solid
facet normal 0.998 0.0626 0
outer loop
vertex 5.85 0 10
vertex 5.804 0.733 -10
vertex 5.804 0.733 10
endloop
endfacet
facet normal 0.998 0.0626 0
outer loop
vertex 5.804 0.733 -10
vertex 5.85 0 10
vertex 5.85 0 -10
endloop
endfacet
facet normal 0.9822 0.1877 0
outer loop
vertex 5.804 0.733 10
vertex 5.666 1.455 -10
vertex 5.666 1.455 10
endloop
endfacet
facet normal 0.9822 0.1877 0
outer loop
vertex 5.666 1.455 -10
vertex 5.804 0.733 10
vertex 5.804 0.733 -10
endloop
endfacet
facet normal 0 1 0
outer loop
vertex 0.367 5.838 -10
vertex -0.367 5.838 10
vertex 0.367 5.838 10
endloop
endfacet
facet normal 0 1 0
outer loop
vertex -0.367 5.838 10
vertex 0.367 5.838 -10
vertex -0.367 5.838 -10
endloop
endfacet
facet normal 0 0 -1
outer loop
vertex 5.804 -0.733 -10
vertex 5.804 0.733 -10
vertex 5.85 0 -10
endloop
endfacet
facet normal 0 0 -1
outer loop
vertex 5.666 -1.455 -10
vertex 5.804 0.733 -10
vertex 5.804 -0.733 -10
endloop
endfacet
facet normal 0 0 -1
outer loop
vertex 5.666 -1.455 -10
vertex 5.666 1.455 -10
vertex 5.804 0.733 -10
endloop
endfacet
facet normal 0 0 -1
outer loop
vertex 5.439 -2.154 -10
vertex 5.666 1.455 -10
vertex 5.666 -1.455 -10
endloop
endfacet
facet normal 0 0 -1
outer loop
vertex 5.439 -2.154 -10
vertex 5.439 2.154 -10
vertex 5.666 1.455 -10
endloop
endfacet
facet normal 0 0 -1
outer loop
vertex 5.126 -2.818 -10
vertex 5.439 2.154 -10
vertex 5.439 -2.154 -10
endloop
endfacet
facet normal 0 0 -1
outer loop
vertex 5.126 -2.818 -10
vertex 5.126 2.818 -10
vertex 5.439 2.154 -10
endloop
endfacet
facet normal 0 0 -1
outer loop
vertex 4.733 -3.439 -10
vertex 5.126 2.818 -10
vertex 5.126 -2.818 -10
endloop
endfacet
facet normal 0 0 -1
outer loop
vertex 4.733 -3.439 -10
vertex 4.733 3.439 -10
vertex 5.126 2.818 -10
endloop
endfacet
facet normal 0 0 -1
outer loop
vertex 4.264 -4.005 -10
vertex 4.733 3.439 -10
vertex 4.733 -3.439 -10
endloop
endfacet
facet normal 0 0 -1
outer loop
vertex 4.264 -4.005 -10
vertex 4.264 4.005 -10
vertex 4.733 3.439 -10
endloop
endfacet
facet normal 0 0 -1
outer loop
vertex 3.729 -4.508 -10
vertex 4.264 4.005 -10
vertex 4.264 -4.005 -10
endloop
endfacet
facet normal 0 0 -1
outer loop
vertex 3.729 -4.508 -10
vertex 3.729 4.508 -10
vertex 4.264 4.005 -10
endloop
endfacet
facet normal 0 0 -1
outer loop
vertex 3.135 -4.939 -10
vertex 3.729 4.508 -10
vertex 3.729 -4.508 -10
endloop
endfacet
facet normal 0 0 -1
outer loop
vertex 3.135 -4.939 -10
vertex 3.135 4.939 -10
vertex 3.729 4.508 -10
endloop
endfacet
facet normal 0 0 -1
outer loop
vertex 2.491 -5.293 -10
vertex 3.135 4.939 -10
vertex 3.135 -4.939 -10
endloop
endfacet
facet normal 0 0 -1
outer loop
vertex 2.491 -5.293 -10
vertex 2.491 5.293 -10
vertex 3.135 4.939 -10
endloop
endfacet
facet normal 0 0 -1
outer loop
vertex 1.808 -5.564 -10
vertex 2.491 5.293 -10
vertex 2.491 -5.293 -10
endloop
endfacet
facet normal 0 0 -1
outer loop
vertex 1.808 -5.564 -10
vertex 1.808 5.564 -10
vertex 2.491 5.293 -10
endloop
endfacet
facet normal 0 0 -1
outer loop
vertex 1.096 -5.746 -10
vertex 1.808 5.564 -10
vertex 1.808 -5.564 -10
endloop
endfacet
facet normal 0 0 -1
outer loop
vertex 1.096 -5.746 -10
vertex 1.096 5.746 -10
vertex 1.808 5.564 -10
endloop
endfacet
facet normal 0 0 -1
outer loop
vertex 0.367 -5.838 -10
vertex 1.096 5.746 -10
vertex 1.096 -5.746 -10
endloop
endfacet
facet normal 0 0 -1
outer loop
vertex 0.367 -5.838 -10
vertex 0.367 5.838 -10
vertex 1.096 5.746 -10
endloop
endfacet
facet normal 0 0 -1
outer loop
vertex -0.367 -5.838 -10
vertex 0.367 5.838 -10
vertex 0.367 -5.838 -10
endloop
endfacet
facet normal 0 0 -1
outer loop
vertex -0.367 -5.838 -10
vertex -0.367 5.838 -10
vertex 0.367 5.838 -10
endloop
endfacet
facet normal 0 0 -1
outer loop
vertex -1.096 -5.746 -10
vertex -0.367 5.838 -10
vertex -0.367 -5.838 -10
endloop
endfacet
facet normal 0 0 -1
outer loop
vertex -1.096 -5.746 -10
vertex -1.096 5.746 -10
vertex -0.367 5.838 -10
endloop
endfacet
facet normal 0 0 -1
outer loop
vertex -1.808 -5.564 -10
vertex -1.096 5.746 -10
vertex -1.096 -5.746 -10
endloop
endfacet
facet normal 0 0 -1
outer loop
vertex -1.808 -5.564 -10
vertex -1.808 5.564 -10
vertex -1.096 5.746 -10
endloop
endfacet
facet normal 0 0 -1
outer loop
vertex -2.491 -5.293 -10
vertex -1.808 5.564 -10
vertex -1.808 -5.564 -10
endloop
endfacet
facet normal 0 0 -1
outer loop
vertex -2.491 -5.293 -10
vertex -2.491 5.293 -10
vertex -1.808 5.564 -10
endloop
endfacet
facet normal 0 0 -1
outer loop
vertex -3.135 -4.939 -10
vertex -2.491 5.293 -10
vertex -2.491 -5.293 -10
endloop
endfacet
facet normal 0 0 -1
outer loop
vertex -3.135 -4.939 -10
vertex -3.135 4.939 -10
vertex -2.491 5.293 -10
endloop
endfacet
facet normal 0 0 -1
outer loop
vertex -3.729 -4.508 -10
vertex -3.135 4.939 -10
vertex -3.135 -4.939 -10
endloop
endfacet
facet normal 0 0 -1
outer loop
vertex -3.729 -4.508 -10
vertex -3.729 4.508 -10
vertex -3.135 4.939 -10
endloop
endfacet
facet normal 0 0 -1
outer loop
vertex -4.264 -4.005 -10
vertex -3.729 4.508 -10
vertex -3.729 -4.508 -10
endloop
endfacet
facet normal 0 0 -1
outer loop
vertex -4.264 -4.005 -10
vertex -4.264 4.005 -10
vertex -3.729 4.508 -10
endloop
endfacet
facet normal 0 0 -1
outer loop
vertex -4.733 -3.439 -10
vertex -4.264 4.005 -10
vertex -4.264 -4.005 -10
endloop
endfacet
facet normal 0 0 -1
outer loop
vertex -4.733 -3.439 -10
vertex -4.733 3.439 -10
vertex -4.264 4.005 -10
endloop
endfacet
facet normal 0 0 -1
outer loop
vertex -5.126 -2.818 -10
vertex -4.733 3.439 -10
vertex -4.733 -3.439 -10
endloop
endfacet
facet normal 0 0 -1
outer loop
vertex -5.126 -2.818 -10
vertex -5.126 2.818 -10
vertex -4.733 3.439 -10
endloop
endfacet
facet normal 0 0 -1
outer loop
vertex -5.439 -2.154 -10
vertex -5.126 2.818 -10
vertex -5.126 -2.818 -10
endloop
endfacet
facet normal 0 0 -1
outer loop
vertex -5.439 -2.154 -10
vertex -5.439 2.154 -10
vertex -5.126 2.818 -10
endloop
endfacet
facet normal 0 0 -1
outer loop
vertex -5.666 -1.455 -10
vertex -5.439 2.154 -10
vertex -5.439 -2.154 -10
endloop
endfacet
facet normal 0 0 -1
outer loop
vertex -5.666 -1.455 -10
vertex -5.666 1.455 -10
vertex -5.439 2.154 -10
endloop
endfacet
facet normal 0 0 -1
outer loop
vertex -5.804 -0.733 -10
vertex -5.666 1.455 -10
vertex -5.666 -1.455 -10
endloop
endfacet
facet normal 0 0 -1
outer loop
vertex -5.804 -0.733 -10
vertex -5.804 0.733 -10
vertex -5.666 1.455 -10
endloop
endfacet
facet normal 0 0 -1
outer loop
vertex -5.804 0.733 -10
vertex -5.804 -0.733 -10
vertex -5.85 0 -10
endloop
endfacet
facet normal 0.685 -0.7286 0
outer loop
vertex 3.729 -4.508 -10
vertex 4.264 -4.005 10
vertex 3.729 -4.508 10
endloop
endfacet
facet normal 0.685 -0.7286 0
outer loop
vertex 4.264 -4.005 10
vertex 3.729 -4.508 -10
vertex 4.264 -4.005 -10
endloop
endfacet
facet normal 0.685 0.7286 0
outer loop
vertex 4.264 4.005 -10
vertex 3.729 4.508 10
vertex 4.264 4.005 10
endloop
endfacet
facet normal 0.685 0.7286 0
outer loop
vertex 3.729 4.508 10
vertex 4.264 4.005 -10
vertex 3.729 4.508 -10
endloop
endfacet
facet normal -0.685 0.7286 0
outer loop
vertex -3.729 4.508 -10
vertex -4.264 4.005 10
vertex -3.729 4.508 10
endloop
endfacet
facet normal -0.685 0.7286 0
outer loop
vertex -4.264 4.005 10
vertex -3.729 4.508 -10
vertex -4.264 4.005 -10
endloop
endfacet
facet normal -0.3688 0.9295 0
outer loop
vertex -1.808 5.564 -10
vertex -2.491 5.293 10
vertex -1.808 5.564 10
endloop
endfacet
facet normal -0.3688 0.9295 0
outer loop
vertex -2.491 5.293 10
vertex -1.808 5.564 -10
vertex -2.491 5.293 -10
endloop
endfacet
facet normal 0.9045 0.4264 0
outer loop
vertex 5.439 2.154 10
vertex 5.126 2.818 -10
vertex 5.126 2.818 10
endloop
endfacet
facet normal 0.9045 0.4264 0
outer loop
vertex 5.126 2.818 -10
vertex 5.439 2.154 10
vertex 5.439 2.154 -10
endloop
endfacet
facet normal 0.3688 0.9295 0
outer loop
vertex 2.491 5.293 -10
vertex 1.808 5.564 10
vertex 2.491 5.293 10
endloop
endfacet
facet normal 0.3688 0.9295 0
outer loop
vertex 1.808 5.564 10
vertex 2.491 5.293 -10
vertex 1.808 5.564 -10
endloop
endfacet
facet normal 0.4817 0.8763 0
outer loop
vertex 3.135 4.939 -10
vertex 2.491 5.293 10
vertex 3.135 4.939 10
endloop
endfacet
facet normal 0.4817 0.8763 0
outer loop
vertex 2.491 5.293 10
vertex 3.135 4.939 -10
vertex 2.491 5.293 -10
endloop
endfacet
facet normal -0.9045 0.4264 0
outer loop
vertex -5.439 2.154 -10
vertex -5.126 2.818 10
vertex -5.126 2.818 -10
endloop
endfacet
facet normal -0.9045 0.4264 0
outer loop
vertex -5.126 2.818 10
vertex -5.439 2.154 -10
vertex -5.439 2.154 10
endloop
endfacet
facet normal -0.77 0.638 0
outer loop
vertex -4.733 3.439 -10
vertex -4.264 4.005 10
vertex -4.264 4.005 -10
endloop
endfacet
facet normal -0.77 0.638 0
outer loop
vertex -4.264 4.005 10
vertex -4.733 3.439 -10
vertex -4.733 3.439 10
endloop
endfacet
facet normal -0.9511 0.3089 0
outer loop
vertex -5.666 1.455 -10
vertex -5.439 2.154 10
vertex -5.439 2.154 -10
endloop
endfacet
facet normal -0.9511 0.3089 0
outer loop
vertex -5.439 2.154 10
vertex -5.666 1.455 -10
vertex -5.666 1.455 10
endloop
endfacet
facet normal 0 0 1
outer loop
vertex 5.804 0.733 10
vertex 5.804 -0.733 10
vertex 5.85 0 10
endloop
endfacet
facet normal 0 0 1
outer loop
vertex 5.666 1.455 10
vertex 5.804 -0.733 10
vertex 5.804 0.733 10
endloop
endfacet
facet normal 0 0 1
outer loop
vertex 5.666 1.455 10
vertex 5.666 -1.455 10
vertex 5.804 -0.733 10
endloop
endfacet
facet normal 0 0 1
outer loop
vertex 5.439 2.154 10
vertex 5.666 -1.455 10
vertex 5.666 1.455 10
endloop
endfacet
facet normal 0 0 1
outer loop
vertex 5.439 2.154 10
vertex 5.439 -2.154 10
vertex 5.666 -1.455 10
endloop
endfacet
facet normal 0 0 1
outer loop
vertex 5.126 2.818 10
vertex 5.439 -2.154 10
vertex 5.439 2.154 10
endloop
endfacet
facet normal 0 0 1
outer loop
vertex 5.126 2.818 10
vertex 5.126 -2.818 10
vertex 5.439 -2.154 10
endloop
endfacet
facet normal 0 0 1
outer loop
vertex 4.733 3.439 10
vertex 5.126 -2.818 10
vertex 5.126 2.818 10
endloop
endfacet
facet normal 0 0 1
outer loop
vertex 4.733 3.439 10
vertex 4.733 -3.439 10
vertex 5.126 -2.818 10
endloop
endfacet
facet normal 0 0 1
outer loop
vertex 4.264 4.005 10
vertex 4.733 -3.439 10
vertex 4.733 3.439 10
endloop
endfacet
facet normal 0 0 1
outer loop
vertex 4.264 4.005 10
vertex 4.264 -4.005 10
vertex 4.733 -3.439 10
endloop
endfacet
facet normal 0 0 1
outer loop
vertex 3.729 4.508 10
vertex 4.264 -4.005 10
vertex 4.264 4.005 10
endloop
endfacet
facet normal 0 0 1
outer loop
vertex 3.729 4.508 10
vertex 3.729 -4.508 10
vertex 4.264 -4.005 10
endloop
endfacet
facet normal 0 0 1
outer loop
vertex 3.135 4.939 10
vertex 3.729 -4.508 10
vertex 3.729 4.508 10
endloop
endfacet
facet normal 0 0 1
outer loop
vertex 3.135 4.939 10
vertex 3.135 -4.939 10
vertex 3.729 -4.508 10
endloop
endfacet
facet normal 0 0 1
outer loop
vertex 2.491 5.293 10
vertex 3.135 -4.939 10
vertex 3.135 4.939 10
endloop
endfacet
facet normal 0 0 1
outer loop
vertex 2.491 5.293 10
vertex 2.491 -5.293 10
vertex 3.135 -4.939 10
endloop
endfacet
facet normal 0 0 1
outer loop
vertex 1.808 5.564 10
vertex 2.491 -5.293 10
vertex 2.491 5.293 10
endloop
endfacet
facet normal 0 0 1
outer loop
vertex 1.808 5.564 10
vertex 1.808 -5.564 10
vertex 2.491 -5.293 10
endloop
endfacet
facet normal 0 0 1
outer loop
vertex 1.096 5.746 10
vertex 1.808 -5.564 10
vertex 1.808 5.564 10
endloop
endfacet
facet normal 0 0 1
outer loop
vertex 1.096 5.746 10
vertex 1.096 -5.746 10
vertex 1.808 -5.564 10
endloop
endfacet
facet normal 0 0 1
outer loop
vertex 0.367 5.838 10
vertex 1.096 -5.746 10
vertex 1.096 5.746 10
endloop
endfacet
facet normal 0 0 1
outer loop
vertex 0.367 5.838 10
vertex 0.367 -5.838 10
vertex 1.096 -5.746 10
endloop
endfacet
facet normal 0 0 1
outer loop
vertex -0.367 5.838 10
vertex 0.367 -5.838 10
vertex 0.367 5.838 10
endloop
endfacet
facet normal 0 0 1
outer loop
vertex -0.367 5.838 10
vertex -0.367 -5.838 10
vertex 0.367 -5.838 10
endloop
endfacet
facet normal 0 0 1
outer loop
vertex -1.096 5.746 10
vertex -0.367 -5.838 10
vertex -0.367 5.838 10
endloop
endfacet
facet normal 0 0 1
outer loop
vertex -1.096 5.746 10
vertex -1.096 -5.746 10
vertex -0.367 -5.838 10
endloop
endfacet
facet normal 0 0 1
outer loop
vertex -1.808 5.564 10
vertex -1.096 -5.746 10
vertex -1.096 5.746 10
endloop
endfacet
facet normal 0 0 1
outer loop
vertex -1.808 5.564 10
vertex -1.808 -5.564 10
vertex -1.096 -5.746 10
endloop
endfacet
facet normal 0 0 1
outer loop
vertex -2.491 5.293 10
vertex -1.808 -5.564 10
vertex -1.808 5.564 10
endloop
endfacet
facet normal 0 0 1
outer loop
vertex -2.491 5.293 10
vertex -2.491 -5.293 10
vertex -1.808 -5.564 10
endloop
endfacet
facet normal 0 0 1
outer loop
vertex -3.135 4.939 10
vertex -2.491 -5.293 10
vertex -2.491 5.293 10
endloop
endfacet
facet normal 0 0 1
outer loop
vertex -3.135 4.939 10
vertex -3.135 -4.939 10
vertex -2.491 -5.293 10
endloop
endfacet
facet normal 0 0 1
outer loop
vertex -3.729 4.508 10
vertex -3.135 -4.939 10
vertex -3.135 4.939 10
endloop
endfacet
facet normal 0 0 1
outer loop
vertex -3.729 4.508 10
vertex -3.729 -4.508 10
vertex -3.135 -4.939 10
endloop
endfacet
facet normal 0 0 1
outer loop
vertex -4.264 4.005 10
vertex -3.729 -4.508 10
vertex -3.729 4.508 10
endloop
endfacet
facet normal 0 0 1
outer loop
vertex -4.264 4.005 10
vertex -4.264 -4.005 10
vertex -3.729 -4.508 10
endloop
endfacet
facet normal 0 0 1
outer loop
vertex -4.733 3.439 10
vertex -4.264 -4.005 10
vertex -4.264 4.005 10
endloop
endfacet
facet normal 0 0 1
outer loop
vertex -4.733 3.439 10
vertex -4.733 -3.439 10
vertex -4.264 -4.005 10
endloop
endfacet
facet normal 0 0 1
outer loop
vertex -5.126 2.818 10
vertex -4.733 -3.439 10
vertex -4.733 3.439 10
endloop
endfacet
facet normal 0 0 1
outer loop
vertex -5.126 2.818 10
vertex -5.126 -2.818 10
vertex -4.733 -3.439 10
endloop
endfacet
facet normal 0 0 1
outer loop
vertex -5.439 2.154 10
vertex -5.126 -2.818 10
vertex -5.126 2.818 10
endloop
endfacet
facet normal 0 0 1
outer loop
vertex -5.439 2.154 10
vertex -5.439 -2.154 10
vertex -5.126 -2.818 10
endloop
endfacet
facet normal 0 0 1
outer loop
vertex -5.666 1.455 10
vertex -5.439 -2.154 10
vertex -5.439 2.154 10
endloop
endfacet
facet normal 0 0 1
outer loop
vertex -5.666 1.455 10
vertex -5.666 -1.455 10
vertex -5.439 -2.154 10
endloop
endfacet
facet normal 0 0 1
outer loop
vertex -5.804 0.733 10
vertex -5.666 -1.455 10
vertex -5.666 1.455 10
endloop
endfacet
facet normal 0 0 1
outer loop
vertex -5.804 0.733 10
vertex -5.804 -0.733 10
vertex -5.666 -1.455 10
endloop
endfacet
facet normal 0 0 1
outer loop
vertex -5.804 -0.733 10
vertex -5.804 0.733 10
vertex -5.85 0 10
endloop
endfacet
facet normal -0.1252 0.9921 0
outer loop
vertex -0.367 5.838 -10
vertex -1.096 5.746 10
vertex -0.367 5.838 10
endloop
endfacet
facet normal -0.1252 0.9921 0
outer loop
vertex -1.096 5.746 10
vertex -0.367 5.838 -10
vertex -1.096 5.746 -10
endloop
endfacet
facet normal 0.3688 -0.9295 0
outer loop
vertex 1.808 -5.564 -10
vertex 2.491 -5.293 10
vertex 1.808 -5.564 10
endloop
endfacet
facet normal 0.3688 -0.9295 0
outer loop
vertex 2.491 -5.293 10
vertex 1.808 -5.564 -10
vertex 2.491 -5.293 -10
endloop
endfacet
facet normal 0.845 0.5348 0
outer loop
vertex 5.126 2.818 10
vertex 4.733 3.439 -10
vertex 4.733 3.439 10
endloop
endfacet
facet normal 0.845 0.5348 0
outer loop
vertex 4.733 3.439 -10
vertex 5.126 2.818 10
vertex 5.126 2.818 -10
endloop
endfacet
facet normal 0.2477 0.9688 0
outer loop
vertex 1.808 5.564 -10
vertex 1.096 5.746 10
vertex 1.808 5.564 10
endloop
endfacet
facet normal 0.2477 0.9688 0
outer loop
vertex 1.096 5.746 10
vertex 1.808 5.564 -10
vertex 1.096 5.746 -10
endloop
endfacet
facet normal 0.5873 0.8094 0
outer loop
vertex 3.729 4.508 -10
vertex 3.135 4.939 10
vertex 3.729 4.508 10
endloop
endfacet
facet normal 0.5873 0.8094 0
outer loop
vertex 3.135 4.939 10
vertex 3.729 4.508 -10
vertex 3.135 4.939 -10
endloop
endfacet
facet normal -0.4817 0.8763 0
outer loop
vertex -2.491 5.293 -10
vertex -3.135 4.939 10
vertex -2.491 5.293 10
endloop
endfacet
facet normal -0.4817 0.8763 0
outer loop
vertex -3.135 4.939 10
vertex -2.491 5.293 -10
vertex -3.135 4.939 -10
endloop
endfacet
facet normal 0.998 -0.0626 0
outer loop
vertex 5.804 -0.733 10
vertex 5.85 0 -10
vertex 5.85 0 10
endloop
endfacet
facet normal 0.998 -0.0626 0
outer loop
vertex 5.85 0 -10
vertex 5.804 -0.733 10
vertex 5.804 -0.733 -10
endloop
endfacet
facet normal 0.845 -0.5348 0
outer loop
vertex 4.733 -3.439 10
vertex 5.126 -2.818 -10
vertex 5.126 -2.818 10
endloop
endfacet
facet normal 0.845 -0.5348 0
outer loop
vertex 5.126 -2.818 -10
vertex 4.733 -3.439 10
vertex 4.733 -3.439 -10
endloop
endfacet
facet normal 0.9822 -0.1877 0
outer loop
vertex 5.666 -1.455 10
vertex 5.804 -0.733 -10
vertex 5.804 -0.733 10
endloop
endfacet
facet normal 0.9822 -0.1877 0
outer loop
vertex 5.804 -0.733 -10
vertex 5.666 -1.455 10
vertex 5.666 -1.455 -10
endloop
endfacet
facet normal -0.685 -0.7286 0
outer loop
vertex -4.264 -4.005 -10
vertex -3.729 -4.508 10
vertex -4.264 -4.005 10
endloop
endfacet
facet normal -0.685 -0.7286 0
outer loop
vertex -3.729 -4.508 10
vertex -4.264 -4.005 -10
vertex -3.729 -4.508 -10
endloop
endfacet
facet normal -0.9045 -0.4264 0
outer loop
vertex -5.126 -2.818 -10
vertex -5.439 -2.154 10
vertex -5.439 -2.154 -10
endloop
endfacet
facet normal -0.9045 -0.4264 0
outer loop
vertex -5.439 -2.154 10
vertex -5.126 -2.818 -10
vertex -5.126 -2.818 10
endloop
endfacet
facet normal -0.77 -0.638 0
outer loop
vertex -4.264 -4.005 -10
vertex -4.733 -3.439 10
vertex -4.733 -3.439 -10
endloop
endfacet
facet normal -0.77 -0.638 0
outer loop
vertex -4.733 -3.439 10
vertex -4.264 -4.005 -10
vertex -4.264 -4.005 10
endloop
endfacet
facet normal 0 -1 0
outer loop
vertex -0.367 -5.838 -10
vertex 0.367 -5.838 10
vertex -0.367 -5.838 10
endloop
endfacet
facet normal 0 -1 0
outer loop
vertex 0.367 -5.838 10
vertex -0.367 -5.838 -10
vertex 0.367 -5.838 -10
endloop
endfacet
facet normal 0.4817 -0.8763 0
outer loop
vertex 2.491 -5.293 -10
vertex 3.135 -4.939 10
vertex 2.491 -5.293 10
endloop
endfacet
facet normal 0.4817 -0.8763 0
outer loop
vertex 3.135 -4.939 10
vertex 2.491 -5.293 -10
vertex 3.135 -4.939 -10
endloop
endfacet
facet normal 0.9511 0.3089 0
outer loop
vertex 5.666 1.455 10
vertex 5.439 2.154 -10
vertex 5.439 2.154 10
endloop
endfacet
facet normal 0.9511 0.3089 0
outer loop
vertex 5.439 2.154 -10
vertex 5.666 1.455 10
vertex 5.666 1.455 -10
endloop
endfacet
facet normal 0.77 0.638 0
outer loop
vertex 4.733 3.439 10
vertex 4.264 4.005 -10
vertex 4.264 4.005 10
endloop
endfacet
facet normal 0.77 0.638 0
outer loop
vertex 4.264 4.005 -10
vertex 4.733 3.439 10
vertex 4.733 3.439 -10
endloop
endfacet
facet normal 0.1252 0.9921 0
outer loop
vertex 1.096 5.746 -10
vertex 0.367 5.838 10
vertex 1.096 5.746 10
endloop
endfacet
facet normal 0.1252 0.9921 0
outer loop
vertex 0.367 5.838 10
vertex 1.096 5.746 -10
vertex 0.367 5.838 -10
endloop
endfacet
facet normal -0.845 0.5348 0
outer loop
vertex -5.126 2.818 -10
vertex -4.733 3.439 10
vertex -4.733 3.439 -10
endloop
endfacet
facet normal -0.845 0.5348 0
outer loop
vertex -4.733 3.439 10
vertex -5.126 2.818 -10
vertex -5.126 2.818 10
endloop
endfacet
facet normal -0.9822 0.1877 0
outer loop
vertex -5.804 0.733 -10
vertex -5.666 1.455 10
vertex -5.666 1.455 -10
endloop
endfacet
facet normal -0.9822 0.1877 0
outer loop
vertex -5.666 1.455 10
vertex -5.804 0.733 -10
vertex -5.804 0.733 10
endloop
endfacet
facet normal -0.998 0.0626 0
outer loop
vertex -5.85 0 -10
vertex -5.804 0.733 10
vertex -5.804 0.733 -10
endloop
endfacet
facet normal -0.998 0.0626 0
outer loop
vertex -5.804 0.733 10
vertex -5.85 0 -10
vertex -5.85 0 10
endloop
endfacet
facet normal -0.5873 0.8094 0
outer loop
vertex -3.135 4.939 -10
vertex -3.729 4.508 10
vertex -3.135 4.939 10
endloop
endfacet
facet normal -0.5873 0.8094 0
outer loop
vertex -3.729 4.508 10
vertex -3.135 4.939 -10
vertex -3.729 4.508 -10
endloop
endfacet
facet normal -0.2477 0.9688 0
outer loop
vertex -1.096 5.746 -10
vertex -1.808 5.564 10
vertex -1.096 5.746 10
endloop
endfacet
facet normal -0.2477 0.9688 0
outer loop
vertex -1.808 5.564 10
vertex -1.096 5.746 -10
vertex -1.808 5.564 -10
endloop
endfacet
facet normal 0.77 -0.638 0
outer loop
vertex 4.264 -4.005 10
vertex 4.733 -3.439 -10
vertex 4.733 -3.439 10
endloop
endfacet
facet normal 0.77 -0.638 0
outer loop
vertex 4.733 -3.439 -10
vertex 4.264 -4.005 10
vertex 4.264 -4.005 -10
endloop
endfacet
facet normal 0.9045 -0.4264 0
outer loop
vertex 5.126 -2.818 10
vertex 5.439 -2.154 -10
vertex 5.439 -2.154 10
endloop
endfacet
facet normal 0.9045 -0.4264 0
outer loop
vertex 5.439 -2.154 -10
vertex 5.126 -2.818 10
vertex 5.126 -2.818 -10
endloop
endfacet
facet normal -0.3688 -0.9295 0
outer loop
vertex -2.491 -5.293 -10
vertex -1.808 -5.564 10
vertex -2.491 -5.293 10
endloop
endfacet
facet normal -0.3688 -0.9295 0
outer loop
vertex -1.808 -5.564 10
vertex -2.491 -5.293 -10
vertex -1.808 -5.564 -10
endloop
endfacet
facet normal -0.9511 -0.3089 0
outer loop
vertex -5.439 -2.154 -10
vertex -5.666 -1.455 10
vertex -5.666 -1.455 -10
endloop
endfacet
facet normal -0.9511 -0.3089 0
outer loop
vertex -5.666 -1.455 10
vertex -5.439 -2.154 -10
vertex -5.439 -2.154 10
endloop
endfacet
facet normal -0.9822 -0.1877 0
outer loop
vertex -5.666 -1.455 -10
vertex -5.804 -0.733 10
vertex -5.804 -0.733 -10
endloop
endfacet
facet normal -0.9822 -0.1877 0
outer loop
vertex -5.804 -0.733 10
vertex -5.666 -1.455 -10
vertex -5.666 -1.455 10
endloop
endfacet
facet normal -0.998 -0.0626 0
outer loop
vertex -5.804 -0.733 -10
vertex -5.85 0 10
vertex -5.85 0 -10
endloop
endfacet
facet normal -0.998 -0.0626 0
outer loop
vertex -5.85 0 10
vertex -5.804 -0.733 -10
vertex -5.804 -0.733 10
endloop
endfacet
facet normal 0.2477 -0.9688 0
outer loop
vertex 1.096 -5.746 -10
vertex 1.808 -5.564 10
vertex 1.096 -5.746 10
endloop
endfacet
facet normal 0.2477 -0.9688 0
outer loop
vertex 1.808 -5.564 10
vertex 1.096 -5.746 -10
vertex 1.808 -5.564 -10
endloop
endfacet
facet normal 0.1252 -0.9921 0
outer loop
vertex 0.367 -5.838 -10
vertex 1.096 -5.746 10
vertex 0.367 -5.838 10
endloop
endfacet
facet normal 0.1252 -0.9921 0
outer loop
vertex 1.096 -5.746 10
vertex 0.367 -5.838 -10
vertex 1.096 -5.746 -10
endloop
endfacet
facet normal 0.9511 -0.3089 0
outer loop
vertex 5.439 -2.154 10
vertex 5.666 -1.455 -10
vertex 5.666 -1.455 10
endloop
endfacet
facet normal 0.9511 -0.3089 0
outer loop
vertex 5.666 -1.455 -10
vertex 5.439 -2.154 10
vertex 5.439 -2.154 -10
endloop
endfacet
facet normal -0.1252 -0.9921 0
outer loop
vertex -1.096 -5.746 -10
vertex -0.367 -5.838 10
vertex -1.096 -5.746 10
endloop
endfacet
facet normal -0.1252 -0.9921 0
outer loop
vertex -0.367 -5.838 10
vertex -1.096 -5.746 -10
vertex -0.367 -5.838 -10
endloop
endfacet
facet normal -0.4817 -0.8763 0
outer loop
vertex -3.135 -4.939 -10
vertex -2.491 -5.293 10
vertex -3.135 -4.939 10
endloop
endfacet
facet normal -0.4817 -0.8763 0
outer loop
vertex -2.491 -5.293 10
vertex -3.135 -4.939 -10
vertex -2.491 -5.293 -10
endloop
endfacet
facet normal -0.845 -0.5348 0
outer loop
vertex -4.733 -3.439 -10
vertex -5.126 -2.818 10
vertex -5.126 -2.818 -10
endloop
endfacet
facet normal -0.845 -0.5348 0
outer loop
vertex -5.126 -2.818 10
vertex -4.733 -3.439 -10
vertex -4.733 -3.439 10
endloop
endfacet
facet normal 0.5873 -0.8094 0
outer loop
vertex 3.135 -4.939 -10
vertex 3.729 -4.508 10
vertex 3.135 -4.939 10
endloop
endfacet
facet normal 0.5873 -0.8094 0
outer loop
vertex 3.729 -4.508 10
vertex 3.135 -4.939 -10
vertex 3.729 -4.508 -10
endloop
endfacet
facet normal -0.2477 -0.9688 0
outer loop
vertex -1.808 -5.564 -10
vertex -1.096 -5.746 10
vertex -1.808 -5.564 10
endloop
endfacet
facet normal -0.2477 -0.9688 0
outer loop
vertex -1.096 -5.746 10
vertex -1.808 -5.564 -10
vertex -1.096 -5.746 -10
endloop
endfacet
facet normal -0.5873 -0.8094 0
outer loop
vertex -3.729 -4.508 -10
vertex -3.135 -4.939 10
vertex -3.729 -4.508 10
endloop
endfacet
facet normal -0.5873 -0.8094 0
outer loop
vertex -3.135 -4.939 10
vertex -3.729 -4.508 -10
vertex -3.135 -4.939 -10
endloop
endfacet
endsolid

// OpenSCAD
$fn = 50;


difference() {
	union() {
		translate(v = [0, 0, -10.0000000000]) {
			cylinder(h = 20, r = 5.8500000000);
		}
	}
	union() {
		translate(v = [0, 0, -100.0000000000]) {
			cylinder(h = 200, r = 0);
		}
	}
}
